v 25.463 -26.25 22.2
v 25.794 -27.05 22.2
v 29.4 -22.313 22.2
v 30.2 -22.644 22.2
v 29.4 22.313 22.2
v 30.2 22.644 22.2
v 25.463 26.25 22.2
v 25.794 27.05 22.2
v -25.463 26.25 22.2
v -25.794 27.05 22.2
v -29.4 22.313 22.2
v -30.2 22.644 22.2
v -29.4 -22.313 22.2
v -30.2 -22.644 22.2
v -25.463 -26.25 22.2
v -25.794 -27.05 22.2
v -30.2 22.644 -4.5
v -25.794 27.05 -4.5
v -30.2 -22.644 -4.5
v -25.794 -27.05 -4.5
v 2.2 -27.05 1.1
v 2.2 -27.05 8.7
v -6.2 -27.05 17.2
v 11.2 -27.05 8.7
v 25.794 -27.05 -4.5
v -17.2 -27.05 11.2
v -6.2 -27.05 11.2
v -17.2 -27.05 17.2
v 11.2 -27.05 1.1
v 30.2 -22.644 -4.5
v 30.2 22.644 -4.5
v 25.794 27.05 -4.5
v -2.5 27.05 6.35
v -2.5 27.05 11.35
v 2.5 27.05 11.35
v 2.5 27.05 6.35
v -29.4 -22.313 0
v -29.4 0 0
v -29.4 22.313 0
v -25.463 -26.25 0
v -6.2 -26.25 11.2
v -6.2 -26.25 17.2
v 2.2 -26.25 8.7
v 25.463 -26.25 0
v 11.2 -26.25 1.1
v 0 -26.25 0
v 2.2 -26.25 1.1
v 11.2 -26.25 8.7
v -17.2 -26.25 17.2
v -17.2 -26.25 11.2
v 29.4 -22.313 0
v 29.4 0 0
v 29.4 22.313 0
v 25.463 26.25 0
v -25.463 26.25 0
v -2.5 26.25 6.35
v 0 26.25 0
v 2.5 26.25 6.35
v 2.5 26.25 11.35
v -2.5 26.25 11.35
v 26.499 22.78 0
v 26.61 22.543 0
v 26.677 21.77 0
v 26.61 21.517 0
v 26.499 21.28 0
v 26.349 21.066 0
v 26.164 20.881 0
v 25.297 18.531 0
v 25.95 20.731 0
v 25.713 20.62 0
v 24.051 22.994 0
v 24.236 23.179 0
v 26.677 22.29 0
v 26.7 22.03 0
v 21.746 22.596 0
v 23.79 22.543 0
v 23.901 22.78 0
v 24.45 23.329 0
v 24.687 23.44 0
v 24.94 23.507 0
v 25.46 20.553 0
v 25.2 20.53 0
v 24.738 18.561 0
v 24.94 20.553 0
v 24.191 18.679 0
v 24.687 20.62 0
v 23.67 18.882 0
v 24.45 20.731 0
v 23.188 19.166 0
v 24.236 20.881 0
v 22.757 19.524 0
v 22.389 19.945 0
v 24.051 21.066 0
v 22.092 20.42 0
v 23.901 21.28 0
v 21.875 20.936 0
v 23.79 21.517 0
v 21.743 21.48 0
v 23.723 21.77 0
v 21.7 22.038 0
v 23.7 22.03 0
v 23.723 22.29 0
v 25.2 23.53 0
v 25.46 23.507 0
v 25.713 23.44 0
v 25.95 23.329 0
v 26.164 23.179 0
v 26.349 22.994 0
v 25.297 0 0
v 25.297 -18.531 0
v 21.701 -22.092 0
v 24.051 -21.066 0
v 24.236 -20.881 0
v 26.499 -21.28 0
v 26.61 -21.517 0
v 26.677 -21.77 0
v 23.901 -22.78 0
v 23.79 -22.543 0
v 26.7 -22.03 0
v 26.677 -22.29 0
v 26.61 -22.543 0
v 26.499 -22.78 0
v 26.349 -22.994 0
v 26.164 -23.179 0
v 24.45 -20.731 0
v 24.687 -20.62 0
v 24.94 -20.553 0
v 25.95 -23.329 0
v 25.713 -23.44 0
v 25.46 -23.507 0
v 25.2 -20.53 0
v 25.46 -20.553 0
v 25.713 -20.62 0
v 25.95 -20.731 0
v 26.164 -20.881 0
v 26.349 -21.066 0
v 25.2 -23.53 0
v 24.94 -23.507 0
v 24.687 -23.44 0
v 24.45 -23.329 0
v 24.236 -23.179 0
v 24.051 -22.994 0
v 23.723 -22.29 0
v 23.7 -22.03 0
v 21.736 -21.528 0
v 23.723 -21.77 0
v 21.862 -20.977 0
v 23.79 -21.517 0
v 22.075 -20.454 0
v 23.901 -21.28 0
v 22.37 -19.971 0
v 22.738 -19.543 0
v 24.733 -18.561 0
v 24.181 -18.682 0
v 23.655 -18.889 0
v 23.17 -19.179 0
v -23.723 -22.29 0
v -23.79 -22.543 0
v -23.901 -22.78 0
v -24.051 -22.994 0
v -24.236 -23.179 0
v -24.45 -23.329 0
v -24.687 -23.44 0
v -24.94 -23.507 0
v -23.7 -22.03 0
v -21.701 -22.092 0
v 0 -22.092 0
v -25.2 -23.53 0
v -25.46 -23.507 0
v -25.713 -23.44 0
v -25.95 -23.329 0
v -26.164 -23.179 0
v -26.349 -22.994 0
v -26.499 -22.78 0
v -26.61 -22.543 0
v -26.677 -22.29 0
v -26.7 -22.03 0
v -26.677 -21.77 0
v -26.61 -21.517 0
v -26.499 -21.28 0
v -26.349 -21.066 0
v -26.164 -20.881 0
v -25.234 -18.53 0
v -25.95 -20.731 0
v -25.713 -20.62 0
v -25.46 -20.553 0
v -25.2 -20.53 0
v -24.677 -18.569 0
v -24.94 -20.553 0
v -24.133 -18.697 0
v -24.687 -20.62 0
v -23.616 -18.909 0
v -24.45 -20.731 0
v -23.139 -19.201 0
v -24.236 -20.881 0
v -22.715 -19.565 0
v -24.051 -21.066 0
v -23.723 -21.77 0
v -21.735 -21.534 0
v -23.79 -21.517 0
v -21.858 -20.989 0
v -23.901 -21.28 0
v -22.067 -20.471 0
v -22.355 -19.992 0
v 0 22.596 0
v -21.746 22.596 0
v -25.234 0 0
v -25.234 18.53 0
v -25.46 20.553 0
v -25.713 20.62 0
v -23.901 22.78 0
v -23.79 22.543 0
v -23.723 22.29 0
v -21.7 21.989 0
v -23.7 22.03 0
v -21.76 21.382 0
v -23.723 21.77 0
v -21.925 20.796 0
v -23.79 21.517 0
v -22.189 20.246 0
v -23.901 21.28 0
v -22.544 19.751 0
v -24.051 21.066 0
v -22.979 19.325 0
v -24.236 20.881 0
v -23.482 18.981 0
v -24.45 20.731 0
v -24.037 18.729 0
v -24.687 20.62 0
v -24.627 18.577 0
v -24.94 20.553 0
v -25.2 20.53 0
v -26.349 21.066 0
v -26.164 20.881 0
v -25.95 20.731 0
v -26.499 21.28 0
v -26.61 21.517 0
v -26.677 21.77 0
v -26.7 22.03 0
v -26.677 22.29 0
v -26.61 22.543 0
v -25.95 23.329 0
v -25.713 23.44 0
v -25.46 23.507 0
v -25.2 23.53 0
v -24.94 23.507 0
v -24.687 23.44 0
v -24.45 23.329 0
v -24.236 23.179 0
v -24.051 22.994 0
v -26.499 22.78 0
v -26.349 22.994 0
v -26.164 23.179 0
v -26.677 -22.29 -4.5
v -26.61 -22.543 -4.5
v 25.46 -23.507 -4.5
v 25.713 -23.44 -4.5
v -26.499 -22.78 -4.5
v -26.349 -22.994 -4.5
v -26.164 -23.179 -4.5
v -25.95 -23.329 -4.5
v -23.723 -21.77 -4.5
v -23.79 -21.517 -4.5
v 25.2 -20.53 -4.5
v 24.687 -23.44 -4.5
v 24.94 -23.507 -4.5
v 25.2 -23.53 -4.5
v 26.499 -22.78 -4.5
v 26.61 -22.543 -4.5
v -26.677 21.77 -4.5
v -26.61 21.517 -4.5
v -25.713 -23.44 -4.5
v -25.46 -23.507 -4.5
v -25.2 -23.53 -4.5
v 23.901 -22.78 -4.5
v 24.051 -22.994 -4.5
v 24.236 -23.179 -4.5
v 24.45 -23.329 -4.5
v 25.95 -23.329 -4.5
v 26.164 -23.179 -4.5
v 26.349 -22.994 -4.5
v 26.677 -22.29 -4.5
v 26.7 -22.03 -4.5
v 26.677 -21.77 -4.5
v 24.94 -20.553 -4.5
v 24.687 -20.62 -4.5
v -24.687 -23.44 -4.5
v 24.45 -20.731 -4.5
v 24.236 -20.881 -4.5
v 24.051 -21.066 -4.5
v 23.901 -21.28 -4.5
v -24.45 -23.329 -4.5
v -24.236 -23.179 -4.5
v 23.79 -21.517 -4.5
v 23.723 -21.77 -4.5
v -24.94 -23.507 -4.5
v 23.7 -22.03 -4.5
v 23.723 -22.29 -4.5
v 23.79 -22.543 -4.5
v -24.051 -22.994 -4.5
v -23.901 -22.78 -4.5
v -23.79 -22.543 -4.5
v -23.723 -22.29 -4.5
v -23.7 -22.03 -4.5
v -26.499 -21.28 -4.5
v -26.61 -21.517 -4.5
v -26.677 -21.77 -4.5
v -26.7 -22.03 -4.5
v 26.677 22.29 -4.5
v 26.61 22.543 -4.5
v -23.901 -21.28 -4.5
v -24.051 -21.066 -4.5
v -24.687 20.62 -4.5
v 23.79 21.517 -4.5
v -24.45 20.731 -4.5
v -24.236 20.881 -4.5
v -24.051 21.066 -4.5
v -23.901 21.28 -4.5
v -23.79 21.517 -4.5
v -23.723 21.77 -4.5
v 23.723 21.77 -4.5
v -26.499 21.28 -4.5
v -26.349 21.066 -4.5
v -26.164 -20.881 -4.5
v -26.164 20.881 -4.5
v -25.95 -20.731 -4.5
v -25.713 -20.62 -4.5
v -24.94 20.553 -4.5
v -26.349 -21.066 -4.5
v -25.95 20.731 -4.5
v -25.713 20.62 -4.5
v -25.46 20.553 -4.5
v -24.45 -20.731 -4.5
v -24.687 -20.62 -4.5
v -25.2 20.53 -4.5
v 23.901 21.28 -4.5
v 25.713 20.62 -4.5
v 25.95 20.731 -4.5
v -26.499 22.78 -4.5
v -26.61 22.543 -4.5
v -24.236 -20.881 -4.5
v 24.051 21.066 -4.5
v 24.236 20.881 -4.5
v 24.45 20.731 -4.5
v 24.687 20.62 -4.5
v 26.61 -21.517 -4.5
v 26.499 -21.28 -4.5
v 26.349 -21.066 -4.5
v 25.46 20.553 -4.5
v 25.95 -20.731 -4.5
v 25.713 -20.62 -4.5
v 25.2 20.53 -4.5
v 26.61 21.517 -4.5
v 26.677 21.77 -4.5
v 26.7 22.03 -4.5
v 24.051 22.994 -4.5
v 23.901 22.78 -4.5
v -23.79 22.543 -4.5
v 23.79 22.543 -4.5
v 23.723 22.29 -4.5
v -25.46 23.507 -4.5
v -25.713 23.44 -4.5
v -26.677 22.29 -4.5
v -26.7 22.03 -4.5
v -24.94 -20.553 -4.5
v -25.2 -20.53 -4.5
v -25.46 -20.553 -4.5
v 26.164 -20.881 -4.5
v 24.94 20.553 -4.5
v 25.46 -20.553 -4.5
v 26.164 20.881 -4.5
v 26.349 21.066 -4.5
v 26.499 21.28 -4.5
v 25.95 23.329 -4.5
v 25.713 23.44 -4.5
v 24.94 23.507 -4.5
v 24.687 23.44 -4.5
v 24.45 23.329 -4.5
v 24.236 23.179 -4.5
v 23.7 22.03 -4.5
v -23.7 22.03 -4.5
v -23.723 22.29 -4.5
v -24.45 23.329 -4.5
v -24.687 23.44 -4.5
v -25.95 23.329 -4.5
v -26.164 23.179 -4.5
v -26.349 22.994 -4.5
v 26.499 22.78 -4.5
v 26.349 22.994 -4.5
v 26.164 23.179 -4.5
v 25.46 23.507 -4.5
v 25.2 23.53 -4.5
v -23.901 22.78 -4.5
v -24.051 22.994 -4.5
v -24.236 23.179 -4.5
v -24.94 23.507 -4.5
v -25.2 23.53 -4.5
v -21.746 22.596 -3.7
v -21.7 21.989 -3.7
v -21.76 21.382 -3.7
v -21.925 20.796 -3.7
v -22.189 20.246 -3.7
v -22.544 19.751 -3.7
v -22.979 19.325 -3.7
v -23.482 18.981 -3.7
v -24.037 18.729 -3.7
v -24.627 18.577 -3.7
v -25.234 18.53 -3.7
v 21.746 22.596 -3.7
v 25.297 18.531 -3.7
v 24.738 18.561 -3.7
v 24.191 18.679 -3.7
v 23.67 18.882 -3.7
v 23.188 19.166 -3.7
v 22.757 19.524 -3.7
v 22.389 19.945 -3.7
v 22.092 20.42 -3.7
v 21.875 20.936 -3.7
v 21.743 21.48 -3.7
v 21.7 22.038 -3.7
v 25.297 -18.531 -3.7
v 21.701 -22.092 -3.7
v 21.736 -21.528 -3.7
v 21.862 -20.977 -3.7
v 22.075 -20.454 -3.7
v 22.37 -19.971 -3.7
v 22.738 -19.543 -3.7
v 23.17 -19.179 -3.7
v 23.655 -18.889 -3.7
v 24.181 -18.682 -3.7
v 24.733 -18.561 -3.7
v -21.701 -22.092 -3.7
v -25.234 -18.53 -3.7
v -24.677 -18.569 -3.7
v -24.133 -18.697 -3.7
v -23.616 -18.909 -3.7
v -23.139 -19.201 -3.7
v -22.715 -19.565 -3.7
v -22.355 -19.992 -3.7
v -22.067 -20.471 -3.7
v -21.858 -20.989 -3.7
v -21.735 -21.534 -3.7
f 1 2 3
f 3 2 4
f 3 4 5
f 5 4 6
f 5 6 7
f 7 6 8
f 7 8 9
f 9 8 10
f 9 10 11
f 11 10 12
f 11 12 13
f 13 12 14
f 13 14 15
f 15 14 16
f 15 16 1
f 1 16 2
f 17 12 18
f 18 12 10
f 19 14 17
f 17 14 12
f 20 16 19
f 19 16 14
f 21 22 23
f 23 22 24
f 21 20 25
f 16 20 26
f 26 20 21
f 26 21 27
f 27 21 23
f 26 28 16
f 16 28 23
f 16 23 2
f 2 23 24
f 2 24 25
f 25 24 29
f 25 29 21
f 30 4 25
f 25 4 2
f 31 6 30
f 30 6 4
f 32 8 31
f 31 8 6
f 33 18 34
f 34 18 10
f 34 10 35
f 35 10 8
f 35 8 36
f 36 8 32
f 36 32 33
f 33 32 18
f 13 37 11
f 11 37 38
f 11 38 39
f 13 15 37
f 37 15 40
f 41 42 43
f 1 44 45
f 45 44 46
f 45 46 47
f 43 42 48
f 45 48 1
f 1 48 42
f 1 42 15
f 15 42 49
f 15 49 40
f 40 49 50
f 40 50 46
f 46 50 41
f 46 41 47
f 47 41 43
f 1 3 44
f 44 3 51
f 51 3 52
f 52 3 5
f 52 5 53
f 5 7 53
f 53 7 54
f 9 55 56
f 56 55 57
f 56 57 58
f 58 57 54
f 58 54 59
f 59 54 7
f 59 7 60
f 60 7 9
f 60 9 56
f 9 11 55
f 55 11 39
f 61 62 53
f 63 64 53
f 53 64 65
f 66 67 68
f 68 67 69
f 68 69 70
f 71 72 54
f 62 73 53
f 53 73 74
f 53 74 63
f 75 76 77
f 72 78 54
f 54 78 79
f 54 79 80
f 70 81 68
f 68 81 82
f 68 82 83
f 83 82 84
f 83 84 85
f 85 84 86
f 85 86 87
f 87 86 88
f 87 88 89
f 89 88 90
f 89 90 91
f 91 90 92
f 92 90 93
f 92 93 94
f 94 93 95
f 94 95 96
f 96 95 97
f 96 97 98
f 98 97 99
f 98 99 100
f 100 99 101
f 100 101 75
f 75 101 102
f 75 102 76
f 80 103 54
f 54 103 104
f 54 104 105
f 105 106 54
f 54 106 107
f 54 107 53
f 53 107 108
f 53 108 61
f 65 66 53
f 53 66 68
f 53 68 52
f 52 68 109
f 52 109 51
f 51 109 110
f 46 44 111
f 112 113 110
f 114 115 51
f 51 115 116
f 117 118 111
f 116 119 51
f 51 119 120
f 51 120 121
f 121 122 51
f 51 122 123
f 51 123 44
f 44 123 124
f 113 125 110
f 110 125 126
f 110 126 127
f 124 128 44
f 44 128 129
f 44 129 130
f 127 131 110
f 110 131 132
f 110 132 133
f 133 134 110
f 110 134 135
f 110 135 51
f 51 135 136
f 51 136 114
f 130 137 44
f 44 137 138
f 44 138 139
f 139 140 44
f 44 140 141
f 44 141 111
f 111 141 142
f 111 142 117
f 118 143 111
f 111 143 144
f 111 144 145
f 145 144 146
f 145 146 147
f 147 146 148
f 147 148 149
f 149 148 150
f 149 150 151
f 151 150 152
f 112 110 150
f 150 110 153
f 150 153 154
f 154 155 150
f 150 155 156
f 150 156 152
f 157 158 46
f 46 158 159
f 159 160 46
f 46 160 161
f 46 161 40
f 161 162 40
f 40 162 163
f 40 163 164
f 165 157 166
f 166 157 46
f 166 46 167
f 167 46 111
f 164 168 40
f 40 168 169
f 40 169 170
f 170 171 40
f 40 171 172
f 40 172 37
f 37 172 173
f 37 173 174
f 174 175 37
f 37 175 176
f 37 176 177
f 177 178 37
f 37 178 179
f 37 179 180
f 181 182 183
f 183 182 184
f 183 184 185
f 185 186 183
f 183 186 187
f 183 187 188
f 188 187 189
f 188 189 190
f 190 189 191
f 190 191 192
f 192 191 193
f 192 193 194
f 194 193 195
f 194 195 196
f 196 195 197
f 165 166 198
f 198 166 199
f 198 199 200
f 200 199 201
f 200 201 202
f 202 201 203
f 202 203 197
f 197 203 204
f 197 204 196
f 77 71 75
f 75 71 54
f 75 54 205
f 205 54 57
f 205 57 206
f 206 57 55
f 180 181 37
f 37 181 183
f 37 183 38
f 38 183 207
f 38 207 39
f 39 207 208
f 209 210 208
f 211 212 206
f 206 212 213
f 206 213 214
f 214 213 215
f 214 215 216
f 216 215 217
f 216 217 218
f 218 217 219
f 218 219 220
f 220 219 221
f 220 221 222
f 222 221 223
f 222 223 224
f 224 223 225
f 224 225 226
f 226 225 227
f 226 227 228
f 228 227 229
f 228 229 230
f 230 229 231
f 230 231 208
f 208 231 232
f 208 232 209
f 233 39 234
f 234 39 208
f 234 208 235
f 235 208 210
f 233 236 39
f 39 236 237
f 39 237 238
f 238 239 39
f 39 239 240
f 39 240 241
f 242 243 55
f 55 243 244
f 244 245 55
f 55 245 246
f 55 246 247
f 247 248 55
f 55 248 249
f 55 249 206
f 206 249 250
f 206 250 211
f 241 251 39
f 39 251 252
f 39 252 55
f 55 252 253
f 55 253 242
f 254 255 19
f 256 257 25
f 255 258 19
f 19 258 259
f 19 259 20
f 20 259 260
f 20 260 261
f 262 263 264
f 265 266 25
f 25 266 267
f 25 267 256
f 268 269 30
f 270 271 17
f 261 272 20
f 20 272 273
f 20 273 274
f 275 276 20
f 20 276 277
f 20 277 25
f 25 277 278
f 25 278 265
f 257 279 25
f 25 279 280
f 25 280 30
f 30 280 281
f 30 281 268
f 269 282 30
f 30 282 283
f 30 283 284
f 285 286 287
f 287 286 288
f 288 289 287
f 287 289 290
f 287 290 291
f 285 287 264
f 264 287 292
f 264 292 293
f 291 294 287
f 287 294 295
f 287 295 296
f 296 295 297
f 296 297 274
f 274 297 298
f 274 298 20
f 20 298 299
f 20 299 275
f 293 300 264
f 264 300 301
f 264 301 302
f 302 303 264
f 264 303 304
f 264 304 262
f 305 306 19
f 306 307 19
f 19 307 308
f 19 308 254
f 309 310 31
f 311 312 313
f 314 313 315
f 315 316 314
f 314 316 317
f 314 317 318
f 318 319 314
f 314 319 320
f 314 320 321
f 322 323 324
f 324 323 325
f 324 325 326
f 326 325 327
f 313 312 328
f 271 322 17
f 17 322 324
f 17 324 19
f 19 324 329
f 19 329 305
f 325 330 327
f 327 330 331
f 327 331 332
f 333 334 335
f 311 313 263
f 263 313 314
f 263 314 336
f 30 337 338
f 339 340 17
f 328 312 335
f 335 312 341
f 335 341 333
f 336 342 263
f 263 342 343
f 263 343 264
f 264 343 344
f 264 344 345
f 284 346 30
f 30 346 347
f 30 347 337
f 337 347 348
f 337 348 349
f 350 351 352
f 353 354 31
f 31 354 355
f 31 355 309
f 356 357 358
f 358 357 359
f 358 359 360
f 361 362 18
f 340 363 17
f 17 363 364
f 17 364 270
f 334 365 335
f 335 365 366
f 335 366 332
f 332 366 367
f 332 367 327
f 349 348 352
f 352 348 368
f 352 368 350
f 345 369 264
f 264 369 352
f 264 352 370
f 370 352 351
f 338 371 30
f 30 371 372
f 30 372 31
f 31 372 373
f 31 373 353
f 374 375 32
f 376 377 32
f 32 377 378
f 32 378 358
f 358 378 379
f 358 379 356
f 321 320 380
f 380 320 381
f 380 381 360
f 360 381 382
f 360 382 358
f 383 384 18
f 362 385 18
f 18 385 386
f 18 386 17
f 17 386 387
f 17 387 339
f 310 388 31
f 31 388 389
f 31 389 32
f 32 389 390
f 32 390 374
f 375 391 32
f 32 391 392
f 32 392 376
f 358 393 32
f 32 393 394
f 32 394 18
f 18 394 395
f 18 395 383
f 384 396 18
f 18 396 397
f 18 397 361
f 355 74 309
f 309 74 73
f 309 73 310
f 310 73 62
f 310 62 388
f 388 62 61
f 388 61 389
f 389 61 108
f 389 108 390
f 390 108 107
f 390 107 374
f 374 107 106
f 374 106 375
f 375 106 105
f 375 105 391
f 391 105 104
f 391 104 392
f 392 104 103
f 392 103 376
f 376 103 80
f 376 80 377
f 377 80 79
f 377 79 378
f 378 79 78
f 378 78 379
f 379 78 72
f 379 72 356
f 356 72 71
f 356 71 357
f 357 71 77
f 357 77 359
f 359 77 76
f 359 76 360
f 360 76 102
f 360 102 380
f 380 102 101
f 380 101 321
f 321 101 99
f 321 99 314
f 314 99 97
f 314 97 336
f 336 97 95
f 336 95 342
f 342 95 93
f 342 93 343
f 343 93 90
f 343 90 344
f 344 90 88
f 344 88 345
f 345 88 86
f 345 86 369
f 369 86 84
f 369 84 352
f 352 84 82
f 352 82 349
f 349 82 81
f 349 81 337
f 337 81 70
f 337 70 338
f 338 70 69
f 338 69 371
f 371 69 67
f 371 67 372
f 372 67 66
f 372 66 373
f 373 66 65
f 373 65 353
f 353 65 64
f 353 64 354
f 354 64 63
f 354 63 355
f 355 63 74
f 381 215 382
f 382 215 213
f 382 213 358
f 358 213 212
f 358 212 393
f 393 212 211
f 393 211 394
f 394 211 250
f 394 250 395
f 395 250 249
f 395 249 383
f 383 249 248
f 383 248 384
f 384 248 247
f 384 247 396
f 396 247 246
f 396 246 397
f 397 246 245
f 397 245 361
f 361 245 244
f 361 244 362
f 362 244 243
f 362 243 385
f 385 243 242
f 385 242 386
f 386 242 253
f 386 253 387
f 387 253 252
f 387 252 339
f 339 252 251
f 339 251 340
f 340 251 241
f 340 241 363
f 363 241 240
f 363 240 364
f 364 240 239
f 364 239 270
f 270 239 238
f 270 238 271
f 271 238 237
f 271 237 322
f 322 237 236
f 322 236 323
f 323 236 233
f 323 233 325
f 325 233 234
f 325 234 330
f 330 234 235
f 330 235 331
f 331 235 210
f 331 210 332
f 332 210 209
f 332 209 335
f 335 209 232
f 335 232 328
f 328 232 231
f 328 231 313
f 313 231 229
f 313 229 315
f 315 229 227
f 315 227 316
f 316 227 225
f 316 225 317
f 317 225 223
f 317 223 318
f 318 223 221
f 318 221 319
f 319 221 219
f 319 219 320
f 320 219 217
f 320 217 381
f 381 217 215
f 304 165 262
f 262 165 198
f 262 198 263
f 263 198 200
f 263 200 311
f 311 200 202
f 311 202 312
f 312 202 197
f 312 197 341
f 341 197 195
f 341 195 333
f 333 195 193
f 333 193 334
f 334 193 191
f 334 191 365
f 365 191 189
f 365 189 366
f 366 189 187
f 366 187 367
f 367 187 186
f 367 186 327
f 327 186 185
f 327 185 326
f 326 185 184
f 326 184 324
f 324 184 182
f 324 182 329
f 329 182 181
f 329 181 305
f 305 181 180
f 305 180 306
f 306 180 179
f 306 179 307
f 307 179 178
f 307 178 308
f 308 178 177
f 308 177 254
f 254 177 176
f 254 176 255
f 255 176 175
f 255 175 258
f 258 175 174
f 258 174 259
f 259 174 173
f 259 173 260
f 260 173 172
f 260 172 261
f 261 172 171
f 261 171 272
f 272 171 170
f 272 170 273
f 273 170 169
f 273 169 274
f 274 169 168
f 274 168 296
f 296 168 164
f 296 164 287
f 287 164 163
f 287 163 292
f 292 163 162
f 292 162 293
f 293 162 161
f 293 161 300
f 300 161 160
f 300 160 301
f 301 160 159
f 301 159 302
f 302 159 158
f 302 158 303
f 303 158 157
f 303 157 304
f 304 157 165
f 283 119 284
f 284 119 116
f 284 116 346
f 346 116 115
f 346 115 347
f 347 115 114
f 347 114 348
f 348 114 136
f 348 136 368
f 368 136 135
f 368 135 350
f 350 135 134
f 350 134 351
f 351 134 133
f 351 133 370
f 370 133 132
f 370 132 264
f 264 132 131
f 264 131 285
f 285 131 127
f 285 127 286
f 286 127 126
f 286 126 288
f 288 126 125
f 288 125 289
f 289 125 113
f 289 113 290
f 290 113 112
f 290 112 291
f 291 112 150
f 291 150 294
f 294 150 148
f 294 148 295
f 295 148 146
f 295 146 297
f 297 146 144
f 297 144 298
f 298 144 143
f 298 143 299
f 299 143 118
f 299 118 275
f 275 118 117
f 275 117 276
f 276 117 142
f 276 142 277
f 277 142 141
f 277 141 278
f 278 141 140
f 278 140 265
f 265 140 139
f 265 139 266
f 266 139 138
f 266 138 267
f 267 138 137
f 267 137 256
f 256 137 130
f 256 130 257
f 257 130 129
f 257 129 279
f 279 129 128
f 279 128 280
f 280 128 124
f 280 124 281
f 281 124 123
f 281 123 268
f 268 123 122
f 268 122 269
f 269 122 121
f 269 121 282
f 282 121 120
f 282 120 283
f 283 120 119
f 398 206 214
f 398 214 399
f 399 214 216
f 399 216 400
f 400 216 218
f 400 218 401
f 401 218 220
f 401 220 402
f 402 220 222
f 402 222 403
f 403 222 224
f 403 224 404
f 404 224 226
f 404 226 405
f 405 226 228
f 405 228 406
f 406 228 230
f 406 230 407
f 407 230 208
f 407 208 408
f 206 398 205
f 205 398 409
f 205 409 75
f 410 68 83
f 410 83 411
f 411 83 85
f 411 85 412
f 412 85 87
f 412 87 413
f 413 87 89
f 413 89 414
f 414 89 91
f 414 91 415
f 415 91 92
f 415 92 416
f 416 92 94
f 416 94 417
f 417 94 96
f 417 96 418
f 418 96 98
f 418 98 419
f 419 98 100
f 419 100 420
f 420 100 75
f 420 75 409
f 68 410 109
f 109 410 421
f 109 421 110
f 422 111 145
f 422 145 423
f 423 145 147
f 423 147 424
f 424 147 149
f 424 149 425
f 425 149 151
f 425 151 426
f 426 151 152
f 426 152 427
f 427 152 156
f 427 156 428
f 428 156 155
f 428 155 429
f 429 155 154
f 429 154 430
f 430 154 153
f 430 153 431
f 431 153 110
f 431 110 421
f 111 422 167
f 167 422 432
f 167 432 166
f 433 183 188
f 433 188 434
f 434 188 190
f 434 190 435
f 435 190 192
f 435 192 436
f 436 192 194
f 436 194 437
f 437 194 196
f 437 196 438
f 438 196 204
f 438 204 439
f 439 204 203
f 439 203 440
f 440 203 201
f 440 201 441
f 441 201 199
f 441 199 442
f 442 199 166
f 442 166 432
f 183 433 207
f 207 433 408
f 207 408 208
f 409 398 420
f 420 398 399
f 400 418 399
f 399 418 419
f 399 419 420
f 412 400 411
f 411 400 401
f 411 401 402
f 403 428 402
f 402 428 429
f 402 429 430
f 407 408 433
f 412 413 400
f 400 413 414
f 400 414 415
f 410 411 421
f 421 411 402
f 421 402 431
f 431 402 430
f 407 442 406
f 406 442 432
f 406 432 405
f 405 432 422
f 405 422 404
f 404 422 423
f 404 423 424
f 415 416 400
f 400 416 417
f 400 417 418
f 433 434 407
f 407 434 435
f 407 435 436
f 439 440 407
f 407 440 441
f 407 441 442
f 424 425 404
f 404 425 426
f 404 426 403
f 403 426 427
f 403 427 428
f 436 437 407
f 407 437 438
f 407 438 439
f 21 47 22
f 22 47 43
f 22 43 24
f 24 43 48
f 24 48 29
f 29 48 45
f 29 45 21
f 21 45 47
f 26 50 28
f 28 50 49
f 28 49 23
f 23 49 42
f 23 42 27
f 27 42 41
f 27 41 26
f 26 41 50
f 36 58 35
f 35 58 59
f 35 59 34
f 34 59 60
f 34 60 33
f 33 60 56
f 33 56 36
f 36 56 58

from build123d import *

# Parameters (mm, degrees)
EXTRUDE_1_DEPTH     = 22.2
EXTRUDE_2_DEPTH     = 4.5
SKETCH_3_R          = 1.5
CUT_EXTRUDE_1_DEPTH = 47.223181414
CUT_EXTRUDE_3_DEPTH = 3.7
CUT_EXTRUDE_4_REACH = 67.816
SKETCH_6_W          = 9
SKETCH_6_H          = 7.6
SKETCH_6_W_2        = 11
SKETCH_6_H_2        = 6
CUT_EXTRUDE_5_REACH = 67.816
SKETCH_7_W          = 5
SKETCH_7_H          = 5


with BuildPart() as part:
    # 草圖1 → 填料-伸長1 (new body)
    with BuildSketch(Plane.XY):
        Polygon((-25.794213562, 27.05), (25.794213562, 27.05), (30.2, 22.644213562), (30.2, -22.644213562), (25.794213562, -27.05), (-25.794213562, -27.05), (-30.2, -22.644213562), (-30.2, 22.644213562), align=None)
        Polygon((-29.4, 22.312842712), (-25.462842712, 26.25), (25.462842712, 26.25), (29.4, 22.312842712), (29.4, -22.312842712), (25.462842712, -26.25), (-25.462842712, -26.25), (-29.4, -22.312842712), align=None, mode=Mode.SUBTRACT)
    extrude(amount=EXTRUDE_1_DEPTH)

    # 草圖2 → 填料-伸長2 (add)
    with BuildSketch(Plane(origin=(0, 0, 0), x_dir=(-1, 0, 0), z_dir=(0, 0, -1))):
        Polygon((-30.2, 22.644213562), (-25.794213562, 27.05), (25.794213562, 27.05), (30.2, 22.644213562), (30.2, -22.644213562), (25.794213562, -27.05), (-25.794213562, -27.05), (-30.2, -22.644213562), align=None)
    extrude(amount=EXTRUDE_2_DEPTH)

    # 草圖3 → 除料-伸長1 (cut, through all)
    with BuildSketch(Plane.XY):
        with Locations((25.2, 22.03)):
            Circle(SKETCH_3_R)
        with Locations(Location((25.2, -22.03, 0), (0, 0, 180))):
            Circle(SKETCH_3_R)
        with Locations((-25.2, -22.03)):
            Circle(SKETCH_3_R)
        with Locations(Location((-25.2, 22.03, 0), (0, 0, 180))):
            Circle(SKETCH_3_R)
    extrude(amount=-CUT_EXTRUDE_1_DEPTH, mode=Mode.SUBTRACT)

    # 草圖5 → 除料-伸長3 (cut)
    with BuildSketch(Plane.XY):
        with BuildLine():
            Line((-25.234050993, 18.530165643), (-25.234050993, -18.530165643))
            ThreePointArc((-25.234050993, -18.530165643), (-22.715358839, -19.564932394), (-21.700544406, -22.091729589))
            Line((-21.700544406, -22.091729589), (21.700544406, -22.091729589))
            ThreePointArc((21.700544406, -22.091729589), (22.737758998, -19.542557689), (25.297360416, -18.531354412))
            Line((25.297360416, -18.531354412), (25.297360416, 18.531354412))
            ThreePointArc((25.297360416, 18.531354412), (22.56426249, 19.727200014), (21.74608079, 22.596076045))
            Line((21.74608079, 22.596076045), (-21.74608079, 22.596076045))
            ThreePointArc((-21.74608079, 22.596076045), (-22.543539666, 19.751136578), (-25.234050993, 18.530165643))
        make_face()
    extrude(amount=-CUT_EXTRUDE_3_DEPTH, mode=Mode.SUBTRACT)

    # 草圖6 → 除料-伸長4 (cut, up to next)
    with BuildSketch(Plane.XZ.offset(27.05), mode=Mode.PRIVATE) as cut_extrude_4_sk1:
        with Locations((6.7, 4.9)):
            Rectangle(SKETCH_6_W, SKETCH_6_H)
    cut_extrude_4_tool1 = extrude(cut_extrude_4_sk1.sketch, amount=-CUT_EXTRUDE_4_REACH, mode=Mode.PRIVATE) & part.part
    # 草圖6 → 除料-伸長4 (cut, up to next)
    with BuildSketch(Plane.XZ.offset(27.05), mode=Mode.PRIVATE) as cut_extrude_4_sk2:
        with Locations((-11.7, 14.2)):
            Rectangle(SKETCH_6_W_2, SKETCH_6_H_2)
    cut_extrude_4_tool2 = extrude(cut_extrude_4_sk2.sketch, amount=-CUT_EXTRUDE_4_REACH, mode=Mode.PRIVATE) & part.part
    add(cut_extrude_4_tool1.solids().sort_by_distance((6.7, -27.05, 4.9))[0], mode=Mode.SUBTRACT)
    add(cut_extrude_4_tool2.solids().sort_by_distance((-11.7, -27.05, 14.2))[0], mode=Mode.SUBTRACT)

    # 草圖7 → 除料-伸長5 (cut, up to next)
    with BuildSketch(Plane(origin=(0, 27.05, 0), x_dir=(1, 0, 0), z_dir=(0, 1, 0)), mode=Mode.PRIVATE) as cut_extrude_5_sk1:
        with Locations((0, -8.85)):
            Rectangle(SKETCH_7_W, SKETCH_7_H)
    cut_extrude_5_tool1 = extrude(cut_extrude_5_sk1.sketch, amount=-CUT_EXTRUDE_5_REACH, mode=Mode.PRIVATE) & part.part
    add(cut_extrude_5_tool1.solids().sort_by_distance((0, 27.05, 8.85))[0], mode=Mode.SUBTRACT)


solid = part.part
